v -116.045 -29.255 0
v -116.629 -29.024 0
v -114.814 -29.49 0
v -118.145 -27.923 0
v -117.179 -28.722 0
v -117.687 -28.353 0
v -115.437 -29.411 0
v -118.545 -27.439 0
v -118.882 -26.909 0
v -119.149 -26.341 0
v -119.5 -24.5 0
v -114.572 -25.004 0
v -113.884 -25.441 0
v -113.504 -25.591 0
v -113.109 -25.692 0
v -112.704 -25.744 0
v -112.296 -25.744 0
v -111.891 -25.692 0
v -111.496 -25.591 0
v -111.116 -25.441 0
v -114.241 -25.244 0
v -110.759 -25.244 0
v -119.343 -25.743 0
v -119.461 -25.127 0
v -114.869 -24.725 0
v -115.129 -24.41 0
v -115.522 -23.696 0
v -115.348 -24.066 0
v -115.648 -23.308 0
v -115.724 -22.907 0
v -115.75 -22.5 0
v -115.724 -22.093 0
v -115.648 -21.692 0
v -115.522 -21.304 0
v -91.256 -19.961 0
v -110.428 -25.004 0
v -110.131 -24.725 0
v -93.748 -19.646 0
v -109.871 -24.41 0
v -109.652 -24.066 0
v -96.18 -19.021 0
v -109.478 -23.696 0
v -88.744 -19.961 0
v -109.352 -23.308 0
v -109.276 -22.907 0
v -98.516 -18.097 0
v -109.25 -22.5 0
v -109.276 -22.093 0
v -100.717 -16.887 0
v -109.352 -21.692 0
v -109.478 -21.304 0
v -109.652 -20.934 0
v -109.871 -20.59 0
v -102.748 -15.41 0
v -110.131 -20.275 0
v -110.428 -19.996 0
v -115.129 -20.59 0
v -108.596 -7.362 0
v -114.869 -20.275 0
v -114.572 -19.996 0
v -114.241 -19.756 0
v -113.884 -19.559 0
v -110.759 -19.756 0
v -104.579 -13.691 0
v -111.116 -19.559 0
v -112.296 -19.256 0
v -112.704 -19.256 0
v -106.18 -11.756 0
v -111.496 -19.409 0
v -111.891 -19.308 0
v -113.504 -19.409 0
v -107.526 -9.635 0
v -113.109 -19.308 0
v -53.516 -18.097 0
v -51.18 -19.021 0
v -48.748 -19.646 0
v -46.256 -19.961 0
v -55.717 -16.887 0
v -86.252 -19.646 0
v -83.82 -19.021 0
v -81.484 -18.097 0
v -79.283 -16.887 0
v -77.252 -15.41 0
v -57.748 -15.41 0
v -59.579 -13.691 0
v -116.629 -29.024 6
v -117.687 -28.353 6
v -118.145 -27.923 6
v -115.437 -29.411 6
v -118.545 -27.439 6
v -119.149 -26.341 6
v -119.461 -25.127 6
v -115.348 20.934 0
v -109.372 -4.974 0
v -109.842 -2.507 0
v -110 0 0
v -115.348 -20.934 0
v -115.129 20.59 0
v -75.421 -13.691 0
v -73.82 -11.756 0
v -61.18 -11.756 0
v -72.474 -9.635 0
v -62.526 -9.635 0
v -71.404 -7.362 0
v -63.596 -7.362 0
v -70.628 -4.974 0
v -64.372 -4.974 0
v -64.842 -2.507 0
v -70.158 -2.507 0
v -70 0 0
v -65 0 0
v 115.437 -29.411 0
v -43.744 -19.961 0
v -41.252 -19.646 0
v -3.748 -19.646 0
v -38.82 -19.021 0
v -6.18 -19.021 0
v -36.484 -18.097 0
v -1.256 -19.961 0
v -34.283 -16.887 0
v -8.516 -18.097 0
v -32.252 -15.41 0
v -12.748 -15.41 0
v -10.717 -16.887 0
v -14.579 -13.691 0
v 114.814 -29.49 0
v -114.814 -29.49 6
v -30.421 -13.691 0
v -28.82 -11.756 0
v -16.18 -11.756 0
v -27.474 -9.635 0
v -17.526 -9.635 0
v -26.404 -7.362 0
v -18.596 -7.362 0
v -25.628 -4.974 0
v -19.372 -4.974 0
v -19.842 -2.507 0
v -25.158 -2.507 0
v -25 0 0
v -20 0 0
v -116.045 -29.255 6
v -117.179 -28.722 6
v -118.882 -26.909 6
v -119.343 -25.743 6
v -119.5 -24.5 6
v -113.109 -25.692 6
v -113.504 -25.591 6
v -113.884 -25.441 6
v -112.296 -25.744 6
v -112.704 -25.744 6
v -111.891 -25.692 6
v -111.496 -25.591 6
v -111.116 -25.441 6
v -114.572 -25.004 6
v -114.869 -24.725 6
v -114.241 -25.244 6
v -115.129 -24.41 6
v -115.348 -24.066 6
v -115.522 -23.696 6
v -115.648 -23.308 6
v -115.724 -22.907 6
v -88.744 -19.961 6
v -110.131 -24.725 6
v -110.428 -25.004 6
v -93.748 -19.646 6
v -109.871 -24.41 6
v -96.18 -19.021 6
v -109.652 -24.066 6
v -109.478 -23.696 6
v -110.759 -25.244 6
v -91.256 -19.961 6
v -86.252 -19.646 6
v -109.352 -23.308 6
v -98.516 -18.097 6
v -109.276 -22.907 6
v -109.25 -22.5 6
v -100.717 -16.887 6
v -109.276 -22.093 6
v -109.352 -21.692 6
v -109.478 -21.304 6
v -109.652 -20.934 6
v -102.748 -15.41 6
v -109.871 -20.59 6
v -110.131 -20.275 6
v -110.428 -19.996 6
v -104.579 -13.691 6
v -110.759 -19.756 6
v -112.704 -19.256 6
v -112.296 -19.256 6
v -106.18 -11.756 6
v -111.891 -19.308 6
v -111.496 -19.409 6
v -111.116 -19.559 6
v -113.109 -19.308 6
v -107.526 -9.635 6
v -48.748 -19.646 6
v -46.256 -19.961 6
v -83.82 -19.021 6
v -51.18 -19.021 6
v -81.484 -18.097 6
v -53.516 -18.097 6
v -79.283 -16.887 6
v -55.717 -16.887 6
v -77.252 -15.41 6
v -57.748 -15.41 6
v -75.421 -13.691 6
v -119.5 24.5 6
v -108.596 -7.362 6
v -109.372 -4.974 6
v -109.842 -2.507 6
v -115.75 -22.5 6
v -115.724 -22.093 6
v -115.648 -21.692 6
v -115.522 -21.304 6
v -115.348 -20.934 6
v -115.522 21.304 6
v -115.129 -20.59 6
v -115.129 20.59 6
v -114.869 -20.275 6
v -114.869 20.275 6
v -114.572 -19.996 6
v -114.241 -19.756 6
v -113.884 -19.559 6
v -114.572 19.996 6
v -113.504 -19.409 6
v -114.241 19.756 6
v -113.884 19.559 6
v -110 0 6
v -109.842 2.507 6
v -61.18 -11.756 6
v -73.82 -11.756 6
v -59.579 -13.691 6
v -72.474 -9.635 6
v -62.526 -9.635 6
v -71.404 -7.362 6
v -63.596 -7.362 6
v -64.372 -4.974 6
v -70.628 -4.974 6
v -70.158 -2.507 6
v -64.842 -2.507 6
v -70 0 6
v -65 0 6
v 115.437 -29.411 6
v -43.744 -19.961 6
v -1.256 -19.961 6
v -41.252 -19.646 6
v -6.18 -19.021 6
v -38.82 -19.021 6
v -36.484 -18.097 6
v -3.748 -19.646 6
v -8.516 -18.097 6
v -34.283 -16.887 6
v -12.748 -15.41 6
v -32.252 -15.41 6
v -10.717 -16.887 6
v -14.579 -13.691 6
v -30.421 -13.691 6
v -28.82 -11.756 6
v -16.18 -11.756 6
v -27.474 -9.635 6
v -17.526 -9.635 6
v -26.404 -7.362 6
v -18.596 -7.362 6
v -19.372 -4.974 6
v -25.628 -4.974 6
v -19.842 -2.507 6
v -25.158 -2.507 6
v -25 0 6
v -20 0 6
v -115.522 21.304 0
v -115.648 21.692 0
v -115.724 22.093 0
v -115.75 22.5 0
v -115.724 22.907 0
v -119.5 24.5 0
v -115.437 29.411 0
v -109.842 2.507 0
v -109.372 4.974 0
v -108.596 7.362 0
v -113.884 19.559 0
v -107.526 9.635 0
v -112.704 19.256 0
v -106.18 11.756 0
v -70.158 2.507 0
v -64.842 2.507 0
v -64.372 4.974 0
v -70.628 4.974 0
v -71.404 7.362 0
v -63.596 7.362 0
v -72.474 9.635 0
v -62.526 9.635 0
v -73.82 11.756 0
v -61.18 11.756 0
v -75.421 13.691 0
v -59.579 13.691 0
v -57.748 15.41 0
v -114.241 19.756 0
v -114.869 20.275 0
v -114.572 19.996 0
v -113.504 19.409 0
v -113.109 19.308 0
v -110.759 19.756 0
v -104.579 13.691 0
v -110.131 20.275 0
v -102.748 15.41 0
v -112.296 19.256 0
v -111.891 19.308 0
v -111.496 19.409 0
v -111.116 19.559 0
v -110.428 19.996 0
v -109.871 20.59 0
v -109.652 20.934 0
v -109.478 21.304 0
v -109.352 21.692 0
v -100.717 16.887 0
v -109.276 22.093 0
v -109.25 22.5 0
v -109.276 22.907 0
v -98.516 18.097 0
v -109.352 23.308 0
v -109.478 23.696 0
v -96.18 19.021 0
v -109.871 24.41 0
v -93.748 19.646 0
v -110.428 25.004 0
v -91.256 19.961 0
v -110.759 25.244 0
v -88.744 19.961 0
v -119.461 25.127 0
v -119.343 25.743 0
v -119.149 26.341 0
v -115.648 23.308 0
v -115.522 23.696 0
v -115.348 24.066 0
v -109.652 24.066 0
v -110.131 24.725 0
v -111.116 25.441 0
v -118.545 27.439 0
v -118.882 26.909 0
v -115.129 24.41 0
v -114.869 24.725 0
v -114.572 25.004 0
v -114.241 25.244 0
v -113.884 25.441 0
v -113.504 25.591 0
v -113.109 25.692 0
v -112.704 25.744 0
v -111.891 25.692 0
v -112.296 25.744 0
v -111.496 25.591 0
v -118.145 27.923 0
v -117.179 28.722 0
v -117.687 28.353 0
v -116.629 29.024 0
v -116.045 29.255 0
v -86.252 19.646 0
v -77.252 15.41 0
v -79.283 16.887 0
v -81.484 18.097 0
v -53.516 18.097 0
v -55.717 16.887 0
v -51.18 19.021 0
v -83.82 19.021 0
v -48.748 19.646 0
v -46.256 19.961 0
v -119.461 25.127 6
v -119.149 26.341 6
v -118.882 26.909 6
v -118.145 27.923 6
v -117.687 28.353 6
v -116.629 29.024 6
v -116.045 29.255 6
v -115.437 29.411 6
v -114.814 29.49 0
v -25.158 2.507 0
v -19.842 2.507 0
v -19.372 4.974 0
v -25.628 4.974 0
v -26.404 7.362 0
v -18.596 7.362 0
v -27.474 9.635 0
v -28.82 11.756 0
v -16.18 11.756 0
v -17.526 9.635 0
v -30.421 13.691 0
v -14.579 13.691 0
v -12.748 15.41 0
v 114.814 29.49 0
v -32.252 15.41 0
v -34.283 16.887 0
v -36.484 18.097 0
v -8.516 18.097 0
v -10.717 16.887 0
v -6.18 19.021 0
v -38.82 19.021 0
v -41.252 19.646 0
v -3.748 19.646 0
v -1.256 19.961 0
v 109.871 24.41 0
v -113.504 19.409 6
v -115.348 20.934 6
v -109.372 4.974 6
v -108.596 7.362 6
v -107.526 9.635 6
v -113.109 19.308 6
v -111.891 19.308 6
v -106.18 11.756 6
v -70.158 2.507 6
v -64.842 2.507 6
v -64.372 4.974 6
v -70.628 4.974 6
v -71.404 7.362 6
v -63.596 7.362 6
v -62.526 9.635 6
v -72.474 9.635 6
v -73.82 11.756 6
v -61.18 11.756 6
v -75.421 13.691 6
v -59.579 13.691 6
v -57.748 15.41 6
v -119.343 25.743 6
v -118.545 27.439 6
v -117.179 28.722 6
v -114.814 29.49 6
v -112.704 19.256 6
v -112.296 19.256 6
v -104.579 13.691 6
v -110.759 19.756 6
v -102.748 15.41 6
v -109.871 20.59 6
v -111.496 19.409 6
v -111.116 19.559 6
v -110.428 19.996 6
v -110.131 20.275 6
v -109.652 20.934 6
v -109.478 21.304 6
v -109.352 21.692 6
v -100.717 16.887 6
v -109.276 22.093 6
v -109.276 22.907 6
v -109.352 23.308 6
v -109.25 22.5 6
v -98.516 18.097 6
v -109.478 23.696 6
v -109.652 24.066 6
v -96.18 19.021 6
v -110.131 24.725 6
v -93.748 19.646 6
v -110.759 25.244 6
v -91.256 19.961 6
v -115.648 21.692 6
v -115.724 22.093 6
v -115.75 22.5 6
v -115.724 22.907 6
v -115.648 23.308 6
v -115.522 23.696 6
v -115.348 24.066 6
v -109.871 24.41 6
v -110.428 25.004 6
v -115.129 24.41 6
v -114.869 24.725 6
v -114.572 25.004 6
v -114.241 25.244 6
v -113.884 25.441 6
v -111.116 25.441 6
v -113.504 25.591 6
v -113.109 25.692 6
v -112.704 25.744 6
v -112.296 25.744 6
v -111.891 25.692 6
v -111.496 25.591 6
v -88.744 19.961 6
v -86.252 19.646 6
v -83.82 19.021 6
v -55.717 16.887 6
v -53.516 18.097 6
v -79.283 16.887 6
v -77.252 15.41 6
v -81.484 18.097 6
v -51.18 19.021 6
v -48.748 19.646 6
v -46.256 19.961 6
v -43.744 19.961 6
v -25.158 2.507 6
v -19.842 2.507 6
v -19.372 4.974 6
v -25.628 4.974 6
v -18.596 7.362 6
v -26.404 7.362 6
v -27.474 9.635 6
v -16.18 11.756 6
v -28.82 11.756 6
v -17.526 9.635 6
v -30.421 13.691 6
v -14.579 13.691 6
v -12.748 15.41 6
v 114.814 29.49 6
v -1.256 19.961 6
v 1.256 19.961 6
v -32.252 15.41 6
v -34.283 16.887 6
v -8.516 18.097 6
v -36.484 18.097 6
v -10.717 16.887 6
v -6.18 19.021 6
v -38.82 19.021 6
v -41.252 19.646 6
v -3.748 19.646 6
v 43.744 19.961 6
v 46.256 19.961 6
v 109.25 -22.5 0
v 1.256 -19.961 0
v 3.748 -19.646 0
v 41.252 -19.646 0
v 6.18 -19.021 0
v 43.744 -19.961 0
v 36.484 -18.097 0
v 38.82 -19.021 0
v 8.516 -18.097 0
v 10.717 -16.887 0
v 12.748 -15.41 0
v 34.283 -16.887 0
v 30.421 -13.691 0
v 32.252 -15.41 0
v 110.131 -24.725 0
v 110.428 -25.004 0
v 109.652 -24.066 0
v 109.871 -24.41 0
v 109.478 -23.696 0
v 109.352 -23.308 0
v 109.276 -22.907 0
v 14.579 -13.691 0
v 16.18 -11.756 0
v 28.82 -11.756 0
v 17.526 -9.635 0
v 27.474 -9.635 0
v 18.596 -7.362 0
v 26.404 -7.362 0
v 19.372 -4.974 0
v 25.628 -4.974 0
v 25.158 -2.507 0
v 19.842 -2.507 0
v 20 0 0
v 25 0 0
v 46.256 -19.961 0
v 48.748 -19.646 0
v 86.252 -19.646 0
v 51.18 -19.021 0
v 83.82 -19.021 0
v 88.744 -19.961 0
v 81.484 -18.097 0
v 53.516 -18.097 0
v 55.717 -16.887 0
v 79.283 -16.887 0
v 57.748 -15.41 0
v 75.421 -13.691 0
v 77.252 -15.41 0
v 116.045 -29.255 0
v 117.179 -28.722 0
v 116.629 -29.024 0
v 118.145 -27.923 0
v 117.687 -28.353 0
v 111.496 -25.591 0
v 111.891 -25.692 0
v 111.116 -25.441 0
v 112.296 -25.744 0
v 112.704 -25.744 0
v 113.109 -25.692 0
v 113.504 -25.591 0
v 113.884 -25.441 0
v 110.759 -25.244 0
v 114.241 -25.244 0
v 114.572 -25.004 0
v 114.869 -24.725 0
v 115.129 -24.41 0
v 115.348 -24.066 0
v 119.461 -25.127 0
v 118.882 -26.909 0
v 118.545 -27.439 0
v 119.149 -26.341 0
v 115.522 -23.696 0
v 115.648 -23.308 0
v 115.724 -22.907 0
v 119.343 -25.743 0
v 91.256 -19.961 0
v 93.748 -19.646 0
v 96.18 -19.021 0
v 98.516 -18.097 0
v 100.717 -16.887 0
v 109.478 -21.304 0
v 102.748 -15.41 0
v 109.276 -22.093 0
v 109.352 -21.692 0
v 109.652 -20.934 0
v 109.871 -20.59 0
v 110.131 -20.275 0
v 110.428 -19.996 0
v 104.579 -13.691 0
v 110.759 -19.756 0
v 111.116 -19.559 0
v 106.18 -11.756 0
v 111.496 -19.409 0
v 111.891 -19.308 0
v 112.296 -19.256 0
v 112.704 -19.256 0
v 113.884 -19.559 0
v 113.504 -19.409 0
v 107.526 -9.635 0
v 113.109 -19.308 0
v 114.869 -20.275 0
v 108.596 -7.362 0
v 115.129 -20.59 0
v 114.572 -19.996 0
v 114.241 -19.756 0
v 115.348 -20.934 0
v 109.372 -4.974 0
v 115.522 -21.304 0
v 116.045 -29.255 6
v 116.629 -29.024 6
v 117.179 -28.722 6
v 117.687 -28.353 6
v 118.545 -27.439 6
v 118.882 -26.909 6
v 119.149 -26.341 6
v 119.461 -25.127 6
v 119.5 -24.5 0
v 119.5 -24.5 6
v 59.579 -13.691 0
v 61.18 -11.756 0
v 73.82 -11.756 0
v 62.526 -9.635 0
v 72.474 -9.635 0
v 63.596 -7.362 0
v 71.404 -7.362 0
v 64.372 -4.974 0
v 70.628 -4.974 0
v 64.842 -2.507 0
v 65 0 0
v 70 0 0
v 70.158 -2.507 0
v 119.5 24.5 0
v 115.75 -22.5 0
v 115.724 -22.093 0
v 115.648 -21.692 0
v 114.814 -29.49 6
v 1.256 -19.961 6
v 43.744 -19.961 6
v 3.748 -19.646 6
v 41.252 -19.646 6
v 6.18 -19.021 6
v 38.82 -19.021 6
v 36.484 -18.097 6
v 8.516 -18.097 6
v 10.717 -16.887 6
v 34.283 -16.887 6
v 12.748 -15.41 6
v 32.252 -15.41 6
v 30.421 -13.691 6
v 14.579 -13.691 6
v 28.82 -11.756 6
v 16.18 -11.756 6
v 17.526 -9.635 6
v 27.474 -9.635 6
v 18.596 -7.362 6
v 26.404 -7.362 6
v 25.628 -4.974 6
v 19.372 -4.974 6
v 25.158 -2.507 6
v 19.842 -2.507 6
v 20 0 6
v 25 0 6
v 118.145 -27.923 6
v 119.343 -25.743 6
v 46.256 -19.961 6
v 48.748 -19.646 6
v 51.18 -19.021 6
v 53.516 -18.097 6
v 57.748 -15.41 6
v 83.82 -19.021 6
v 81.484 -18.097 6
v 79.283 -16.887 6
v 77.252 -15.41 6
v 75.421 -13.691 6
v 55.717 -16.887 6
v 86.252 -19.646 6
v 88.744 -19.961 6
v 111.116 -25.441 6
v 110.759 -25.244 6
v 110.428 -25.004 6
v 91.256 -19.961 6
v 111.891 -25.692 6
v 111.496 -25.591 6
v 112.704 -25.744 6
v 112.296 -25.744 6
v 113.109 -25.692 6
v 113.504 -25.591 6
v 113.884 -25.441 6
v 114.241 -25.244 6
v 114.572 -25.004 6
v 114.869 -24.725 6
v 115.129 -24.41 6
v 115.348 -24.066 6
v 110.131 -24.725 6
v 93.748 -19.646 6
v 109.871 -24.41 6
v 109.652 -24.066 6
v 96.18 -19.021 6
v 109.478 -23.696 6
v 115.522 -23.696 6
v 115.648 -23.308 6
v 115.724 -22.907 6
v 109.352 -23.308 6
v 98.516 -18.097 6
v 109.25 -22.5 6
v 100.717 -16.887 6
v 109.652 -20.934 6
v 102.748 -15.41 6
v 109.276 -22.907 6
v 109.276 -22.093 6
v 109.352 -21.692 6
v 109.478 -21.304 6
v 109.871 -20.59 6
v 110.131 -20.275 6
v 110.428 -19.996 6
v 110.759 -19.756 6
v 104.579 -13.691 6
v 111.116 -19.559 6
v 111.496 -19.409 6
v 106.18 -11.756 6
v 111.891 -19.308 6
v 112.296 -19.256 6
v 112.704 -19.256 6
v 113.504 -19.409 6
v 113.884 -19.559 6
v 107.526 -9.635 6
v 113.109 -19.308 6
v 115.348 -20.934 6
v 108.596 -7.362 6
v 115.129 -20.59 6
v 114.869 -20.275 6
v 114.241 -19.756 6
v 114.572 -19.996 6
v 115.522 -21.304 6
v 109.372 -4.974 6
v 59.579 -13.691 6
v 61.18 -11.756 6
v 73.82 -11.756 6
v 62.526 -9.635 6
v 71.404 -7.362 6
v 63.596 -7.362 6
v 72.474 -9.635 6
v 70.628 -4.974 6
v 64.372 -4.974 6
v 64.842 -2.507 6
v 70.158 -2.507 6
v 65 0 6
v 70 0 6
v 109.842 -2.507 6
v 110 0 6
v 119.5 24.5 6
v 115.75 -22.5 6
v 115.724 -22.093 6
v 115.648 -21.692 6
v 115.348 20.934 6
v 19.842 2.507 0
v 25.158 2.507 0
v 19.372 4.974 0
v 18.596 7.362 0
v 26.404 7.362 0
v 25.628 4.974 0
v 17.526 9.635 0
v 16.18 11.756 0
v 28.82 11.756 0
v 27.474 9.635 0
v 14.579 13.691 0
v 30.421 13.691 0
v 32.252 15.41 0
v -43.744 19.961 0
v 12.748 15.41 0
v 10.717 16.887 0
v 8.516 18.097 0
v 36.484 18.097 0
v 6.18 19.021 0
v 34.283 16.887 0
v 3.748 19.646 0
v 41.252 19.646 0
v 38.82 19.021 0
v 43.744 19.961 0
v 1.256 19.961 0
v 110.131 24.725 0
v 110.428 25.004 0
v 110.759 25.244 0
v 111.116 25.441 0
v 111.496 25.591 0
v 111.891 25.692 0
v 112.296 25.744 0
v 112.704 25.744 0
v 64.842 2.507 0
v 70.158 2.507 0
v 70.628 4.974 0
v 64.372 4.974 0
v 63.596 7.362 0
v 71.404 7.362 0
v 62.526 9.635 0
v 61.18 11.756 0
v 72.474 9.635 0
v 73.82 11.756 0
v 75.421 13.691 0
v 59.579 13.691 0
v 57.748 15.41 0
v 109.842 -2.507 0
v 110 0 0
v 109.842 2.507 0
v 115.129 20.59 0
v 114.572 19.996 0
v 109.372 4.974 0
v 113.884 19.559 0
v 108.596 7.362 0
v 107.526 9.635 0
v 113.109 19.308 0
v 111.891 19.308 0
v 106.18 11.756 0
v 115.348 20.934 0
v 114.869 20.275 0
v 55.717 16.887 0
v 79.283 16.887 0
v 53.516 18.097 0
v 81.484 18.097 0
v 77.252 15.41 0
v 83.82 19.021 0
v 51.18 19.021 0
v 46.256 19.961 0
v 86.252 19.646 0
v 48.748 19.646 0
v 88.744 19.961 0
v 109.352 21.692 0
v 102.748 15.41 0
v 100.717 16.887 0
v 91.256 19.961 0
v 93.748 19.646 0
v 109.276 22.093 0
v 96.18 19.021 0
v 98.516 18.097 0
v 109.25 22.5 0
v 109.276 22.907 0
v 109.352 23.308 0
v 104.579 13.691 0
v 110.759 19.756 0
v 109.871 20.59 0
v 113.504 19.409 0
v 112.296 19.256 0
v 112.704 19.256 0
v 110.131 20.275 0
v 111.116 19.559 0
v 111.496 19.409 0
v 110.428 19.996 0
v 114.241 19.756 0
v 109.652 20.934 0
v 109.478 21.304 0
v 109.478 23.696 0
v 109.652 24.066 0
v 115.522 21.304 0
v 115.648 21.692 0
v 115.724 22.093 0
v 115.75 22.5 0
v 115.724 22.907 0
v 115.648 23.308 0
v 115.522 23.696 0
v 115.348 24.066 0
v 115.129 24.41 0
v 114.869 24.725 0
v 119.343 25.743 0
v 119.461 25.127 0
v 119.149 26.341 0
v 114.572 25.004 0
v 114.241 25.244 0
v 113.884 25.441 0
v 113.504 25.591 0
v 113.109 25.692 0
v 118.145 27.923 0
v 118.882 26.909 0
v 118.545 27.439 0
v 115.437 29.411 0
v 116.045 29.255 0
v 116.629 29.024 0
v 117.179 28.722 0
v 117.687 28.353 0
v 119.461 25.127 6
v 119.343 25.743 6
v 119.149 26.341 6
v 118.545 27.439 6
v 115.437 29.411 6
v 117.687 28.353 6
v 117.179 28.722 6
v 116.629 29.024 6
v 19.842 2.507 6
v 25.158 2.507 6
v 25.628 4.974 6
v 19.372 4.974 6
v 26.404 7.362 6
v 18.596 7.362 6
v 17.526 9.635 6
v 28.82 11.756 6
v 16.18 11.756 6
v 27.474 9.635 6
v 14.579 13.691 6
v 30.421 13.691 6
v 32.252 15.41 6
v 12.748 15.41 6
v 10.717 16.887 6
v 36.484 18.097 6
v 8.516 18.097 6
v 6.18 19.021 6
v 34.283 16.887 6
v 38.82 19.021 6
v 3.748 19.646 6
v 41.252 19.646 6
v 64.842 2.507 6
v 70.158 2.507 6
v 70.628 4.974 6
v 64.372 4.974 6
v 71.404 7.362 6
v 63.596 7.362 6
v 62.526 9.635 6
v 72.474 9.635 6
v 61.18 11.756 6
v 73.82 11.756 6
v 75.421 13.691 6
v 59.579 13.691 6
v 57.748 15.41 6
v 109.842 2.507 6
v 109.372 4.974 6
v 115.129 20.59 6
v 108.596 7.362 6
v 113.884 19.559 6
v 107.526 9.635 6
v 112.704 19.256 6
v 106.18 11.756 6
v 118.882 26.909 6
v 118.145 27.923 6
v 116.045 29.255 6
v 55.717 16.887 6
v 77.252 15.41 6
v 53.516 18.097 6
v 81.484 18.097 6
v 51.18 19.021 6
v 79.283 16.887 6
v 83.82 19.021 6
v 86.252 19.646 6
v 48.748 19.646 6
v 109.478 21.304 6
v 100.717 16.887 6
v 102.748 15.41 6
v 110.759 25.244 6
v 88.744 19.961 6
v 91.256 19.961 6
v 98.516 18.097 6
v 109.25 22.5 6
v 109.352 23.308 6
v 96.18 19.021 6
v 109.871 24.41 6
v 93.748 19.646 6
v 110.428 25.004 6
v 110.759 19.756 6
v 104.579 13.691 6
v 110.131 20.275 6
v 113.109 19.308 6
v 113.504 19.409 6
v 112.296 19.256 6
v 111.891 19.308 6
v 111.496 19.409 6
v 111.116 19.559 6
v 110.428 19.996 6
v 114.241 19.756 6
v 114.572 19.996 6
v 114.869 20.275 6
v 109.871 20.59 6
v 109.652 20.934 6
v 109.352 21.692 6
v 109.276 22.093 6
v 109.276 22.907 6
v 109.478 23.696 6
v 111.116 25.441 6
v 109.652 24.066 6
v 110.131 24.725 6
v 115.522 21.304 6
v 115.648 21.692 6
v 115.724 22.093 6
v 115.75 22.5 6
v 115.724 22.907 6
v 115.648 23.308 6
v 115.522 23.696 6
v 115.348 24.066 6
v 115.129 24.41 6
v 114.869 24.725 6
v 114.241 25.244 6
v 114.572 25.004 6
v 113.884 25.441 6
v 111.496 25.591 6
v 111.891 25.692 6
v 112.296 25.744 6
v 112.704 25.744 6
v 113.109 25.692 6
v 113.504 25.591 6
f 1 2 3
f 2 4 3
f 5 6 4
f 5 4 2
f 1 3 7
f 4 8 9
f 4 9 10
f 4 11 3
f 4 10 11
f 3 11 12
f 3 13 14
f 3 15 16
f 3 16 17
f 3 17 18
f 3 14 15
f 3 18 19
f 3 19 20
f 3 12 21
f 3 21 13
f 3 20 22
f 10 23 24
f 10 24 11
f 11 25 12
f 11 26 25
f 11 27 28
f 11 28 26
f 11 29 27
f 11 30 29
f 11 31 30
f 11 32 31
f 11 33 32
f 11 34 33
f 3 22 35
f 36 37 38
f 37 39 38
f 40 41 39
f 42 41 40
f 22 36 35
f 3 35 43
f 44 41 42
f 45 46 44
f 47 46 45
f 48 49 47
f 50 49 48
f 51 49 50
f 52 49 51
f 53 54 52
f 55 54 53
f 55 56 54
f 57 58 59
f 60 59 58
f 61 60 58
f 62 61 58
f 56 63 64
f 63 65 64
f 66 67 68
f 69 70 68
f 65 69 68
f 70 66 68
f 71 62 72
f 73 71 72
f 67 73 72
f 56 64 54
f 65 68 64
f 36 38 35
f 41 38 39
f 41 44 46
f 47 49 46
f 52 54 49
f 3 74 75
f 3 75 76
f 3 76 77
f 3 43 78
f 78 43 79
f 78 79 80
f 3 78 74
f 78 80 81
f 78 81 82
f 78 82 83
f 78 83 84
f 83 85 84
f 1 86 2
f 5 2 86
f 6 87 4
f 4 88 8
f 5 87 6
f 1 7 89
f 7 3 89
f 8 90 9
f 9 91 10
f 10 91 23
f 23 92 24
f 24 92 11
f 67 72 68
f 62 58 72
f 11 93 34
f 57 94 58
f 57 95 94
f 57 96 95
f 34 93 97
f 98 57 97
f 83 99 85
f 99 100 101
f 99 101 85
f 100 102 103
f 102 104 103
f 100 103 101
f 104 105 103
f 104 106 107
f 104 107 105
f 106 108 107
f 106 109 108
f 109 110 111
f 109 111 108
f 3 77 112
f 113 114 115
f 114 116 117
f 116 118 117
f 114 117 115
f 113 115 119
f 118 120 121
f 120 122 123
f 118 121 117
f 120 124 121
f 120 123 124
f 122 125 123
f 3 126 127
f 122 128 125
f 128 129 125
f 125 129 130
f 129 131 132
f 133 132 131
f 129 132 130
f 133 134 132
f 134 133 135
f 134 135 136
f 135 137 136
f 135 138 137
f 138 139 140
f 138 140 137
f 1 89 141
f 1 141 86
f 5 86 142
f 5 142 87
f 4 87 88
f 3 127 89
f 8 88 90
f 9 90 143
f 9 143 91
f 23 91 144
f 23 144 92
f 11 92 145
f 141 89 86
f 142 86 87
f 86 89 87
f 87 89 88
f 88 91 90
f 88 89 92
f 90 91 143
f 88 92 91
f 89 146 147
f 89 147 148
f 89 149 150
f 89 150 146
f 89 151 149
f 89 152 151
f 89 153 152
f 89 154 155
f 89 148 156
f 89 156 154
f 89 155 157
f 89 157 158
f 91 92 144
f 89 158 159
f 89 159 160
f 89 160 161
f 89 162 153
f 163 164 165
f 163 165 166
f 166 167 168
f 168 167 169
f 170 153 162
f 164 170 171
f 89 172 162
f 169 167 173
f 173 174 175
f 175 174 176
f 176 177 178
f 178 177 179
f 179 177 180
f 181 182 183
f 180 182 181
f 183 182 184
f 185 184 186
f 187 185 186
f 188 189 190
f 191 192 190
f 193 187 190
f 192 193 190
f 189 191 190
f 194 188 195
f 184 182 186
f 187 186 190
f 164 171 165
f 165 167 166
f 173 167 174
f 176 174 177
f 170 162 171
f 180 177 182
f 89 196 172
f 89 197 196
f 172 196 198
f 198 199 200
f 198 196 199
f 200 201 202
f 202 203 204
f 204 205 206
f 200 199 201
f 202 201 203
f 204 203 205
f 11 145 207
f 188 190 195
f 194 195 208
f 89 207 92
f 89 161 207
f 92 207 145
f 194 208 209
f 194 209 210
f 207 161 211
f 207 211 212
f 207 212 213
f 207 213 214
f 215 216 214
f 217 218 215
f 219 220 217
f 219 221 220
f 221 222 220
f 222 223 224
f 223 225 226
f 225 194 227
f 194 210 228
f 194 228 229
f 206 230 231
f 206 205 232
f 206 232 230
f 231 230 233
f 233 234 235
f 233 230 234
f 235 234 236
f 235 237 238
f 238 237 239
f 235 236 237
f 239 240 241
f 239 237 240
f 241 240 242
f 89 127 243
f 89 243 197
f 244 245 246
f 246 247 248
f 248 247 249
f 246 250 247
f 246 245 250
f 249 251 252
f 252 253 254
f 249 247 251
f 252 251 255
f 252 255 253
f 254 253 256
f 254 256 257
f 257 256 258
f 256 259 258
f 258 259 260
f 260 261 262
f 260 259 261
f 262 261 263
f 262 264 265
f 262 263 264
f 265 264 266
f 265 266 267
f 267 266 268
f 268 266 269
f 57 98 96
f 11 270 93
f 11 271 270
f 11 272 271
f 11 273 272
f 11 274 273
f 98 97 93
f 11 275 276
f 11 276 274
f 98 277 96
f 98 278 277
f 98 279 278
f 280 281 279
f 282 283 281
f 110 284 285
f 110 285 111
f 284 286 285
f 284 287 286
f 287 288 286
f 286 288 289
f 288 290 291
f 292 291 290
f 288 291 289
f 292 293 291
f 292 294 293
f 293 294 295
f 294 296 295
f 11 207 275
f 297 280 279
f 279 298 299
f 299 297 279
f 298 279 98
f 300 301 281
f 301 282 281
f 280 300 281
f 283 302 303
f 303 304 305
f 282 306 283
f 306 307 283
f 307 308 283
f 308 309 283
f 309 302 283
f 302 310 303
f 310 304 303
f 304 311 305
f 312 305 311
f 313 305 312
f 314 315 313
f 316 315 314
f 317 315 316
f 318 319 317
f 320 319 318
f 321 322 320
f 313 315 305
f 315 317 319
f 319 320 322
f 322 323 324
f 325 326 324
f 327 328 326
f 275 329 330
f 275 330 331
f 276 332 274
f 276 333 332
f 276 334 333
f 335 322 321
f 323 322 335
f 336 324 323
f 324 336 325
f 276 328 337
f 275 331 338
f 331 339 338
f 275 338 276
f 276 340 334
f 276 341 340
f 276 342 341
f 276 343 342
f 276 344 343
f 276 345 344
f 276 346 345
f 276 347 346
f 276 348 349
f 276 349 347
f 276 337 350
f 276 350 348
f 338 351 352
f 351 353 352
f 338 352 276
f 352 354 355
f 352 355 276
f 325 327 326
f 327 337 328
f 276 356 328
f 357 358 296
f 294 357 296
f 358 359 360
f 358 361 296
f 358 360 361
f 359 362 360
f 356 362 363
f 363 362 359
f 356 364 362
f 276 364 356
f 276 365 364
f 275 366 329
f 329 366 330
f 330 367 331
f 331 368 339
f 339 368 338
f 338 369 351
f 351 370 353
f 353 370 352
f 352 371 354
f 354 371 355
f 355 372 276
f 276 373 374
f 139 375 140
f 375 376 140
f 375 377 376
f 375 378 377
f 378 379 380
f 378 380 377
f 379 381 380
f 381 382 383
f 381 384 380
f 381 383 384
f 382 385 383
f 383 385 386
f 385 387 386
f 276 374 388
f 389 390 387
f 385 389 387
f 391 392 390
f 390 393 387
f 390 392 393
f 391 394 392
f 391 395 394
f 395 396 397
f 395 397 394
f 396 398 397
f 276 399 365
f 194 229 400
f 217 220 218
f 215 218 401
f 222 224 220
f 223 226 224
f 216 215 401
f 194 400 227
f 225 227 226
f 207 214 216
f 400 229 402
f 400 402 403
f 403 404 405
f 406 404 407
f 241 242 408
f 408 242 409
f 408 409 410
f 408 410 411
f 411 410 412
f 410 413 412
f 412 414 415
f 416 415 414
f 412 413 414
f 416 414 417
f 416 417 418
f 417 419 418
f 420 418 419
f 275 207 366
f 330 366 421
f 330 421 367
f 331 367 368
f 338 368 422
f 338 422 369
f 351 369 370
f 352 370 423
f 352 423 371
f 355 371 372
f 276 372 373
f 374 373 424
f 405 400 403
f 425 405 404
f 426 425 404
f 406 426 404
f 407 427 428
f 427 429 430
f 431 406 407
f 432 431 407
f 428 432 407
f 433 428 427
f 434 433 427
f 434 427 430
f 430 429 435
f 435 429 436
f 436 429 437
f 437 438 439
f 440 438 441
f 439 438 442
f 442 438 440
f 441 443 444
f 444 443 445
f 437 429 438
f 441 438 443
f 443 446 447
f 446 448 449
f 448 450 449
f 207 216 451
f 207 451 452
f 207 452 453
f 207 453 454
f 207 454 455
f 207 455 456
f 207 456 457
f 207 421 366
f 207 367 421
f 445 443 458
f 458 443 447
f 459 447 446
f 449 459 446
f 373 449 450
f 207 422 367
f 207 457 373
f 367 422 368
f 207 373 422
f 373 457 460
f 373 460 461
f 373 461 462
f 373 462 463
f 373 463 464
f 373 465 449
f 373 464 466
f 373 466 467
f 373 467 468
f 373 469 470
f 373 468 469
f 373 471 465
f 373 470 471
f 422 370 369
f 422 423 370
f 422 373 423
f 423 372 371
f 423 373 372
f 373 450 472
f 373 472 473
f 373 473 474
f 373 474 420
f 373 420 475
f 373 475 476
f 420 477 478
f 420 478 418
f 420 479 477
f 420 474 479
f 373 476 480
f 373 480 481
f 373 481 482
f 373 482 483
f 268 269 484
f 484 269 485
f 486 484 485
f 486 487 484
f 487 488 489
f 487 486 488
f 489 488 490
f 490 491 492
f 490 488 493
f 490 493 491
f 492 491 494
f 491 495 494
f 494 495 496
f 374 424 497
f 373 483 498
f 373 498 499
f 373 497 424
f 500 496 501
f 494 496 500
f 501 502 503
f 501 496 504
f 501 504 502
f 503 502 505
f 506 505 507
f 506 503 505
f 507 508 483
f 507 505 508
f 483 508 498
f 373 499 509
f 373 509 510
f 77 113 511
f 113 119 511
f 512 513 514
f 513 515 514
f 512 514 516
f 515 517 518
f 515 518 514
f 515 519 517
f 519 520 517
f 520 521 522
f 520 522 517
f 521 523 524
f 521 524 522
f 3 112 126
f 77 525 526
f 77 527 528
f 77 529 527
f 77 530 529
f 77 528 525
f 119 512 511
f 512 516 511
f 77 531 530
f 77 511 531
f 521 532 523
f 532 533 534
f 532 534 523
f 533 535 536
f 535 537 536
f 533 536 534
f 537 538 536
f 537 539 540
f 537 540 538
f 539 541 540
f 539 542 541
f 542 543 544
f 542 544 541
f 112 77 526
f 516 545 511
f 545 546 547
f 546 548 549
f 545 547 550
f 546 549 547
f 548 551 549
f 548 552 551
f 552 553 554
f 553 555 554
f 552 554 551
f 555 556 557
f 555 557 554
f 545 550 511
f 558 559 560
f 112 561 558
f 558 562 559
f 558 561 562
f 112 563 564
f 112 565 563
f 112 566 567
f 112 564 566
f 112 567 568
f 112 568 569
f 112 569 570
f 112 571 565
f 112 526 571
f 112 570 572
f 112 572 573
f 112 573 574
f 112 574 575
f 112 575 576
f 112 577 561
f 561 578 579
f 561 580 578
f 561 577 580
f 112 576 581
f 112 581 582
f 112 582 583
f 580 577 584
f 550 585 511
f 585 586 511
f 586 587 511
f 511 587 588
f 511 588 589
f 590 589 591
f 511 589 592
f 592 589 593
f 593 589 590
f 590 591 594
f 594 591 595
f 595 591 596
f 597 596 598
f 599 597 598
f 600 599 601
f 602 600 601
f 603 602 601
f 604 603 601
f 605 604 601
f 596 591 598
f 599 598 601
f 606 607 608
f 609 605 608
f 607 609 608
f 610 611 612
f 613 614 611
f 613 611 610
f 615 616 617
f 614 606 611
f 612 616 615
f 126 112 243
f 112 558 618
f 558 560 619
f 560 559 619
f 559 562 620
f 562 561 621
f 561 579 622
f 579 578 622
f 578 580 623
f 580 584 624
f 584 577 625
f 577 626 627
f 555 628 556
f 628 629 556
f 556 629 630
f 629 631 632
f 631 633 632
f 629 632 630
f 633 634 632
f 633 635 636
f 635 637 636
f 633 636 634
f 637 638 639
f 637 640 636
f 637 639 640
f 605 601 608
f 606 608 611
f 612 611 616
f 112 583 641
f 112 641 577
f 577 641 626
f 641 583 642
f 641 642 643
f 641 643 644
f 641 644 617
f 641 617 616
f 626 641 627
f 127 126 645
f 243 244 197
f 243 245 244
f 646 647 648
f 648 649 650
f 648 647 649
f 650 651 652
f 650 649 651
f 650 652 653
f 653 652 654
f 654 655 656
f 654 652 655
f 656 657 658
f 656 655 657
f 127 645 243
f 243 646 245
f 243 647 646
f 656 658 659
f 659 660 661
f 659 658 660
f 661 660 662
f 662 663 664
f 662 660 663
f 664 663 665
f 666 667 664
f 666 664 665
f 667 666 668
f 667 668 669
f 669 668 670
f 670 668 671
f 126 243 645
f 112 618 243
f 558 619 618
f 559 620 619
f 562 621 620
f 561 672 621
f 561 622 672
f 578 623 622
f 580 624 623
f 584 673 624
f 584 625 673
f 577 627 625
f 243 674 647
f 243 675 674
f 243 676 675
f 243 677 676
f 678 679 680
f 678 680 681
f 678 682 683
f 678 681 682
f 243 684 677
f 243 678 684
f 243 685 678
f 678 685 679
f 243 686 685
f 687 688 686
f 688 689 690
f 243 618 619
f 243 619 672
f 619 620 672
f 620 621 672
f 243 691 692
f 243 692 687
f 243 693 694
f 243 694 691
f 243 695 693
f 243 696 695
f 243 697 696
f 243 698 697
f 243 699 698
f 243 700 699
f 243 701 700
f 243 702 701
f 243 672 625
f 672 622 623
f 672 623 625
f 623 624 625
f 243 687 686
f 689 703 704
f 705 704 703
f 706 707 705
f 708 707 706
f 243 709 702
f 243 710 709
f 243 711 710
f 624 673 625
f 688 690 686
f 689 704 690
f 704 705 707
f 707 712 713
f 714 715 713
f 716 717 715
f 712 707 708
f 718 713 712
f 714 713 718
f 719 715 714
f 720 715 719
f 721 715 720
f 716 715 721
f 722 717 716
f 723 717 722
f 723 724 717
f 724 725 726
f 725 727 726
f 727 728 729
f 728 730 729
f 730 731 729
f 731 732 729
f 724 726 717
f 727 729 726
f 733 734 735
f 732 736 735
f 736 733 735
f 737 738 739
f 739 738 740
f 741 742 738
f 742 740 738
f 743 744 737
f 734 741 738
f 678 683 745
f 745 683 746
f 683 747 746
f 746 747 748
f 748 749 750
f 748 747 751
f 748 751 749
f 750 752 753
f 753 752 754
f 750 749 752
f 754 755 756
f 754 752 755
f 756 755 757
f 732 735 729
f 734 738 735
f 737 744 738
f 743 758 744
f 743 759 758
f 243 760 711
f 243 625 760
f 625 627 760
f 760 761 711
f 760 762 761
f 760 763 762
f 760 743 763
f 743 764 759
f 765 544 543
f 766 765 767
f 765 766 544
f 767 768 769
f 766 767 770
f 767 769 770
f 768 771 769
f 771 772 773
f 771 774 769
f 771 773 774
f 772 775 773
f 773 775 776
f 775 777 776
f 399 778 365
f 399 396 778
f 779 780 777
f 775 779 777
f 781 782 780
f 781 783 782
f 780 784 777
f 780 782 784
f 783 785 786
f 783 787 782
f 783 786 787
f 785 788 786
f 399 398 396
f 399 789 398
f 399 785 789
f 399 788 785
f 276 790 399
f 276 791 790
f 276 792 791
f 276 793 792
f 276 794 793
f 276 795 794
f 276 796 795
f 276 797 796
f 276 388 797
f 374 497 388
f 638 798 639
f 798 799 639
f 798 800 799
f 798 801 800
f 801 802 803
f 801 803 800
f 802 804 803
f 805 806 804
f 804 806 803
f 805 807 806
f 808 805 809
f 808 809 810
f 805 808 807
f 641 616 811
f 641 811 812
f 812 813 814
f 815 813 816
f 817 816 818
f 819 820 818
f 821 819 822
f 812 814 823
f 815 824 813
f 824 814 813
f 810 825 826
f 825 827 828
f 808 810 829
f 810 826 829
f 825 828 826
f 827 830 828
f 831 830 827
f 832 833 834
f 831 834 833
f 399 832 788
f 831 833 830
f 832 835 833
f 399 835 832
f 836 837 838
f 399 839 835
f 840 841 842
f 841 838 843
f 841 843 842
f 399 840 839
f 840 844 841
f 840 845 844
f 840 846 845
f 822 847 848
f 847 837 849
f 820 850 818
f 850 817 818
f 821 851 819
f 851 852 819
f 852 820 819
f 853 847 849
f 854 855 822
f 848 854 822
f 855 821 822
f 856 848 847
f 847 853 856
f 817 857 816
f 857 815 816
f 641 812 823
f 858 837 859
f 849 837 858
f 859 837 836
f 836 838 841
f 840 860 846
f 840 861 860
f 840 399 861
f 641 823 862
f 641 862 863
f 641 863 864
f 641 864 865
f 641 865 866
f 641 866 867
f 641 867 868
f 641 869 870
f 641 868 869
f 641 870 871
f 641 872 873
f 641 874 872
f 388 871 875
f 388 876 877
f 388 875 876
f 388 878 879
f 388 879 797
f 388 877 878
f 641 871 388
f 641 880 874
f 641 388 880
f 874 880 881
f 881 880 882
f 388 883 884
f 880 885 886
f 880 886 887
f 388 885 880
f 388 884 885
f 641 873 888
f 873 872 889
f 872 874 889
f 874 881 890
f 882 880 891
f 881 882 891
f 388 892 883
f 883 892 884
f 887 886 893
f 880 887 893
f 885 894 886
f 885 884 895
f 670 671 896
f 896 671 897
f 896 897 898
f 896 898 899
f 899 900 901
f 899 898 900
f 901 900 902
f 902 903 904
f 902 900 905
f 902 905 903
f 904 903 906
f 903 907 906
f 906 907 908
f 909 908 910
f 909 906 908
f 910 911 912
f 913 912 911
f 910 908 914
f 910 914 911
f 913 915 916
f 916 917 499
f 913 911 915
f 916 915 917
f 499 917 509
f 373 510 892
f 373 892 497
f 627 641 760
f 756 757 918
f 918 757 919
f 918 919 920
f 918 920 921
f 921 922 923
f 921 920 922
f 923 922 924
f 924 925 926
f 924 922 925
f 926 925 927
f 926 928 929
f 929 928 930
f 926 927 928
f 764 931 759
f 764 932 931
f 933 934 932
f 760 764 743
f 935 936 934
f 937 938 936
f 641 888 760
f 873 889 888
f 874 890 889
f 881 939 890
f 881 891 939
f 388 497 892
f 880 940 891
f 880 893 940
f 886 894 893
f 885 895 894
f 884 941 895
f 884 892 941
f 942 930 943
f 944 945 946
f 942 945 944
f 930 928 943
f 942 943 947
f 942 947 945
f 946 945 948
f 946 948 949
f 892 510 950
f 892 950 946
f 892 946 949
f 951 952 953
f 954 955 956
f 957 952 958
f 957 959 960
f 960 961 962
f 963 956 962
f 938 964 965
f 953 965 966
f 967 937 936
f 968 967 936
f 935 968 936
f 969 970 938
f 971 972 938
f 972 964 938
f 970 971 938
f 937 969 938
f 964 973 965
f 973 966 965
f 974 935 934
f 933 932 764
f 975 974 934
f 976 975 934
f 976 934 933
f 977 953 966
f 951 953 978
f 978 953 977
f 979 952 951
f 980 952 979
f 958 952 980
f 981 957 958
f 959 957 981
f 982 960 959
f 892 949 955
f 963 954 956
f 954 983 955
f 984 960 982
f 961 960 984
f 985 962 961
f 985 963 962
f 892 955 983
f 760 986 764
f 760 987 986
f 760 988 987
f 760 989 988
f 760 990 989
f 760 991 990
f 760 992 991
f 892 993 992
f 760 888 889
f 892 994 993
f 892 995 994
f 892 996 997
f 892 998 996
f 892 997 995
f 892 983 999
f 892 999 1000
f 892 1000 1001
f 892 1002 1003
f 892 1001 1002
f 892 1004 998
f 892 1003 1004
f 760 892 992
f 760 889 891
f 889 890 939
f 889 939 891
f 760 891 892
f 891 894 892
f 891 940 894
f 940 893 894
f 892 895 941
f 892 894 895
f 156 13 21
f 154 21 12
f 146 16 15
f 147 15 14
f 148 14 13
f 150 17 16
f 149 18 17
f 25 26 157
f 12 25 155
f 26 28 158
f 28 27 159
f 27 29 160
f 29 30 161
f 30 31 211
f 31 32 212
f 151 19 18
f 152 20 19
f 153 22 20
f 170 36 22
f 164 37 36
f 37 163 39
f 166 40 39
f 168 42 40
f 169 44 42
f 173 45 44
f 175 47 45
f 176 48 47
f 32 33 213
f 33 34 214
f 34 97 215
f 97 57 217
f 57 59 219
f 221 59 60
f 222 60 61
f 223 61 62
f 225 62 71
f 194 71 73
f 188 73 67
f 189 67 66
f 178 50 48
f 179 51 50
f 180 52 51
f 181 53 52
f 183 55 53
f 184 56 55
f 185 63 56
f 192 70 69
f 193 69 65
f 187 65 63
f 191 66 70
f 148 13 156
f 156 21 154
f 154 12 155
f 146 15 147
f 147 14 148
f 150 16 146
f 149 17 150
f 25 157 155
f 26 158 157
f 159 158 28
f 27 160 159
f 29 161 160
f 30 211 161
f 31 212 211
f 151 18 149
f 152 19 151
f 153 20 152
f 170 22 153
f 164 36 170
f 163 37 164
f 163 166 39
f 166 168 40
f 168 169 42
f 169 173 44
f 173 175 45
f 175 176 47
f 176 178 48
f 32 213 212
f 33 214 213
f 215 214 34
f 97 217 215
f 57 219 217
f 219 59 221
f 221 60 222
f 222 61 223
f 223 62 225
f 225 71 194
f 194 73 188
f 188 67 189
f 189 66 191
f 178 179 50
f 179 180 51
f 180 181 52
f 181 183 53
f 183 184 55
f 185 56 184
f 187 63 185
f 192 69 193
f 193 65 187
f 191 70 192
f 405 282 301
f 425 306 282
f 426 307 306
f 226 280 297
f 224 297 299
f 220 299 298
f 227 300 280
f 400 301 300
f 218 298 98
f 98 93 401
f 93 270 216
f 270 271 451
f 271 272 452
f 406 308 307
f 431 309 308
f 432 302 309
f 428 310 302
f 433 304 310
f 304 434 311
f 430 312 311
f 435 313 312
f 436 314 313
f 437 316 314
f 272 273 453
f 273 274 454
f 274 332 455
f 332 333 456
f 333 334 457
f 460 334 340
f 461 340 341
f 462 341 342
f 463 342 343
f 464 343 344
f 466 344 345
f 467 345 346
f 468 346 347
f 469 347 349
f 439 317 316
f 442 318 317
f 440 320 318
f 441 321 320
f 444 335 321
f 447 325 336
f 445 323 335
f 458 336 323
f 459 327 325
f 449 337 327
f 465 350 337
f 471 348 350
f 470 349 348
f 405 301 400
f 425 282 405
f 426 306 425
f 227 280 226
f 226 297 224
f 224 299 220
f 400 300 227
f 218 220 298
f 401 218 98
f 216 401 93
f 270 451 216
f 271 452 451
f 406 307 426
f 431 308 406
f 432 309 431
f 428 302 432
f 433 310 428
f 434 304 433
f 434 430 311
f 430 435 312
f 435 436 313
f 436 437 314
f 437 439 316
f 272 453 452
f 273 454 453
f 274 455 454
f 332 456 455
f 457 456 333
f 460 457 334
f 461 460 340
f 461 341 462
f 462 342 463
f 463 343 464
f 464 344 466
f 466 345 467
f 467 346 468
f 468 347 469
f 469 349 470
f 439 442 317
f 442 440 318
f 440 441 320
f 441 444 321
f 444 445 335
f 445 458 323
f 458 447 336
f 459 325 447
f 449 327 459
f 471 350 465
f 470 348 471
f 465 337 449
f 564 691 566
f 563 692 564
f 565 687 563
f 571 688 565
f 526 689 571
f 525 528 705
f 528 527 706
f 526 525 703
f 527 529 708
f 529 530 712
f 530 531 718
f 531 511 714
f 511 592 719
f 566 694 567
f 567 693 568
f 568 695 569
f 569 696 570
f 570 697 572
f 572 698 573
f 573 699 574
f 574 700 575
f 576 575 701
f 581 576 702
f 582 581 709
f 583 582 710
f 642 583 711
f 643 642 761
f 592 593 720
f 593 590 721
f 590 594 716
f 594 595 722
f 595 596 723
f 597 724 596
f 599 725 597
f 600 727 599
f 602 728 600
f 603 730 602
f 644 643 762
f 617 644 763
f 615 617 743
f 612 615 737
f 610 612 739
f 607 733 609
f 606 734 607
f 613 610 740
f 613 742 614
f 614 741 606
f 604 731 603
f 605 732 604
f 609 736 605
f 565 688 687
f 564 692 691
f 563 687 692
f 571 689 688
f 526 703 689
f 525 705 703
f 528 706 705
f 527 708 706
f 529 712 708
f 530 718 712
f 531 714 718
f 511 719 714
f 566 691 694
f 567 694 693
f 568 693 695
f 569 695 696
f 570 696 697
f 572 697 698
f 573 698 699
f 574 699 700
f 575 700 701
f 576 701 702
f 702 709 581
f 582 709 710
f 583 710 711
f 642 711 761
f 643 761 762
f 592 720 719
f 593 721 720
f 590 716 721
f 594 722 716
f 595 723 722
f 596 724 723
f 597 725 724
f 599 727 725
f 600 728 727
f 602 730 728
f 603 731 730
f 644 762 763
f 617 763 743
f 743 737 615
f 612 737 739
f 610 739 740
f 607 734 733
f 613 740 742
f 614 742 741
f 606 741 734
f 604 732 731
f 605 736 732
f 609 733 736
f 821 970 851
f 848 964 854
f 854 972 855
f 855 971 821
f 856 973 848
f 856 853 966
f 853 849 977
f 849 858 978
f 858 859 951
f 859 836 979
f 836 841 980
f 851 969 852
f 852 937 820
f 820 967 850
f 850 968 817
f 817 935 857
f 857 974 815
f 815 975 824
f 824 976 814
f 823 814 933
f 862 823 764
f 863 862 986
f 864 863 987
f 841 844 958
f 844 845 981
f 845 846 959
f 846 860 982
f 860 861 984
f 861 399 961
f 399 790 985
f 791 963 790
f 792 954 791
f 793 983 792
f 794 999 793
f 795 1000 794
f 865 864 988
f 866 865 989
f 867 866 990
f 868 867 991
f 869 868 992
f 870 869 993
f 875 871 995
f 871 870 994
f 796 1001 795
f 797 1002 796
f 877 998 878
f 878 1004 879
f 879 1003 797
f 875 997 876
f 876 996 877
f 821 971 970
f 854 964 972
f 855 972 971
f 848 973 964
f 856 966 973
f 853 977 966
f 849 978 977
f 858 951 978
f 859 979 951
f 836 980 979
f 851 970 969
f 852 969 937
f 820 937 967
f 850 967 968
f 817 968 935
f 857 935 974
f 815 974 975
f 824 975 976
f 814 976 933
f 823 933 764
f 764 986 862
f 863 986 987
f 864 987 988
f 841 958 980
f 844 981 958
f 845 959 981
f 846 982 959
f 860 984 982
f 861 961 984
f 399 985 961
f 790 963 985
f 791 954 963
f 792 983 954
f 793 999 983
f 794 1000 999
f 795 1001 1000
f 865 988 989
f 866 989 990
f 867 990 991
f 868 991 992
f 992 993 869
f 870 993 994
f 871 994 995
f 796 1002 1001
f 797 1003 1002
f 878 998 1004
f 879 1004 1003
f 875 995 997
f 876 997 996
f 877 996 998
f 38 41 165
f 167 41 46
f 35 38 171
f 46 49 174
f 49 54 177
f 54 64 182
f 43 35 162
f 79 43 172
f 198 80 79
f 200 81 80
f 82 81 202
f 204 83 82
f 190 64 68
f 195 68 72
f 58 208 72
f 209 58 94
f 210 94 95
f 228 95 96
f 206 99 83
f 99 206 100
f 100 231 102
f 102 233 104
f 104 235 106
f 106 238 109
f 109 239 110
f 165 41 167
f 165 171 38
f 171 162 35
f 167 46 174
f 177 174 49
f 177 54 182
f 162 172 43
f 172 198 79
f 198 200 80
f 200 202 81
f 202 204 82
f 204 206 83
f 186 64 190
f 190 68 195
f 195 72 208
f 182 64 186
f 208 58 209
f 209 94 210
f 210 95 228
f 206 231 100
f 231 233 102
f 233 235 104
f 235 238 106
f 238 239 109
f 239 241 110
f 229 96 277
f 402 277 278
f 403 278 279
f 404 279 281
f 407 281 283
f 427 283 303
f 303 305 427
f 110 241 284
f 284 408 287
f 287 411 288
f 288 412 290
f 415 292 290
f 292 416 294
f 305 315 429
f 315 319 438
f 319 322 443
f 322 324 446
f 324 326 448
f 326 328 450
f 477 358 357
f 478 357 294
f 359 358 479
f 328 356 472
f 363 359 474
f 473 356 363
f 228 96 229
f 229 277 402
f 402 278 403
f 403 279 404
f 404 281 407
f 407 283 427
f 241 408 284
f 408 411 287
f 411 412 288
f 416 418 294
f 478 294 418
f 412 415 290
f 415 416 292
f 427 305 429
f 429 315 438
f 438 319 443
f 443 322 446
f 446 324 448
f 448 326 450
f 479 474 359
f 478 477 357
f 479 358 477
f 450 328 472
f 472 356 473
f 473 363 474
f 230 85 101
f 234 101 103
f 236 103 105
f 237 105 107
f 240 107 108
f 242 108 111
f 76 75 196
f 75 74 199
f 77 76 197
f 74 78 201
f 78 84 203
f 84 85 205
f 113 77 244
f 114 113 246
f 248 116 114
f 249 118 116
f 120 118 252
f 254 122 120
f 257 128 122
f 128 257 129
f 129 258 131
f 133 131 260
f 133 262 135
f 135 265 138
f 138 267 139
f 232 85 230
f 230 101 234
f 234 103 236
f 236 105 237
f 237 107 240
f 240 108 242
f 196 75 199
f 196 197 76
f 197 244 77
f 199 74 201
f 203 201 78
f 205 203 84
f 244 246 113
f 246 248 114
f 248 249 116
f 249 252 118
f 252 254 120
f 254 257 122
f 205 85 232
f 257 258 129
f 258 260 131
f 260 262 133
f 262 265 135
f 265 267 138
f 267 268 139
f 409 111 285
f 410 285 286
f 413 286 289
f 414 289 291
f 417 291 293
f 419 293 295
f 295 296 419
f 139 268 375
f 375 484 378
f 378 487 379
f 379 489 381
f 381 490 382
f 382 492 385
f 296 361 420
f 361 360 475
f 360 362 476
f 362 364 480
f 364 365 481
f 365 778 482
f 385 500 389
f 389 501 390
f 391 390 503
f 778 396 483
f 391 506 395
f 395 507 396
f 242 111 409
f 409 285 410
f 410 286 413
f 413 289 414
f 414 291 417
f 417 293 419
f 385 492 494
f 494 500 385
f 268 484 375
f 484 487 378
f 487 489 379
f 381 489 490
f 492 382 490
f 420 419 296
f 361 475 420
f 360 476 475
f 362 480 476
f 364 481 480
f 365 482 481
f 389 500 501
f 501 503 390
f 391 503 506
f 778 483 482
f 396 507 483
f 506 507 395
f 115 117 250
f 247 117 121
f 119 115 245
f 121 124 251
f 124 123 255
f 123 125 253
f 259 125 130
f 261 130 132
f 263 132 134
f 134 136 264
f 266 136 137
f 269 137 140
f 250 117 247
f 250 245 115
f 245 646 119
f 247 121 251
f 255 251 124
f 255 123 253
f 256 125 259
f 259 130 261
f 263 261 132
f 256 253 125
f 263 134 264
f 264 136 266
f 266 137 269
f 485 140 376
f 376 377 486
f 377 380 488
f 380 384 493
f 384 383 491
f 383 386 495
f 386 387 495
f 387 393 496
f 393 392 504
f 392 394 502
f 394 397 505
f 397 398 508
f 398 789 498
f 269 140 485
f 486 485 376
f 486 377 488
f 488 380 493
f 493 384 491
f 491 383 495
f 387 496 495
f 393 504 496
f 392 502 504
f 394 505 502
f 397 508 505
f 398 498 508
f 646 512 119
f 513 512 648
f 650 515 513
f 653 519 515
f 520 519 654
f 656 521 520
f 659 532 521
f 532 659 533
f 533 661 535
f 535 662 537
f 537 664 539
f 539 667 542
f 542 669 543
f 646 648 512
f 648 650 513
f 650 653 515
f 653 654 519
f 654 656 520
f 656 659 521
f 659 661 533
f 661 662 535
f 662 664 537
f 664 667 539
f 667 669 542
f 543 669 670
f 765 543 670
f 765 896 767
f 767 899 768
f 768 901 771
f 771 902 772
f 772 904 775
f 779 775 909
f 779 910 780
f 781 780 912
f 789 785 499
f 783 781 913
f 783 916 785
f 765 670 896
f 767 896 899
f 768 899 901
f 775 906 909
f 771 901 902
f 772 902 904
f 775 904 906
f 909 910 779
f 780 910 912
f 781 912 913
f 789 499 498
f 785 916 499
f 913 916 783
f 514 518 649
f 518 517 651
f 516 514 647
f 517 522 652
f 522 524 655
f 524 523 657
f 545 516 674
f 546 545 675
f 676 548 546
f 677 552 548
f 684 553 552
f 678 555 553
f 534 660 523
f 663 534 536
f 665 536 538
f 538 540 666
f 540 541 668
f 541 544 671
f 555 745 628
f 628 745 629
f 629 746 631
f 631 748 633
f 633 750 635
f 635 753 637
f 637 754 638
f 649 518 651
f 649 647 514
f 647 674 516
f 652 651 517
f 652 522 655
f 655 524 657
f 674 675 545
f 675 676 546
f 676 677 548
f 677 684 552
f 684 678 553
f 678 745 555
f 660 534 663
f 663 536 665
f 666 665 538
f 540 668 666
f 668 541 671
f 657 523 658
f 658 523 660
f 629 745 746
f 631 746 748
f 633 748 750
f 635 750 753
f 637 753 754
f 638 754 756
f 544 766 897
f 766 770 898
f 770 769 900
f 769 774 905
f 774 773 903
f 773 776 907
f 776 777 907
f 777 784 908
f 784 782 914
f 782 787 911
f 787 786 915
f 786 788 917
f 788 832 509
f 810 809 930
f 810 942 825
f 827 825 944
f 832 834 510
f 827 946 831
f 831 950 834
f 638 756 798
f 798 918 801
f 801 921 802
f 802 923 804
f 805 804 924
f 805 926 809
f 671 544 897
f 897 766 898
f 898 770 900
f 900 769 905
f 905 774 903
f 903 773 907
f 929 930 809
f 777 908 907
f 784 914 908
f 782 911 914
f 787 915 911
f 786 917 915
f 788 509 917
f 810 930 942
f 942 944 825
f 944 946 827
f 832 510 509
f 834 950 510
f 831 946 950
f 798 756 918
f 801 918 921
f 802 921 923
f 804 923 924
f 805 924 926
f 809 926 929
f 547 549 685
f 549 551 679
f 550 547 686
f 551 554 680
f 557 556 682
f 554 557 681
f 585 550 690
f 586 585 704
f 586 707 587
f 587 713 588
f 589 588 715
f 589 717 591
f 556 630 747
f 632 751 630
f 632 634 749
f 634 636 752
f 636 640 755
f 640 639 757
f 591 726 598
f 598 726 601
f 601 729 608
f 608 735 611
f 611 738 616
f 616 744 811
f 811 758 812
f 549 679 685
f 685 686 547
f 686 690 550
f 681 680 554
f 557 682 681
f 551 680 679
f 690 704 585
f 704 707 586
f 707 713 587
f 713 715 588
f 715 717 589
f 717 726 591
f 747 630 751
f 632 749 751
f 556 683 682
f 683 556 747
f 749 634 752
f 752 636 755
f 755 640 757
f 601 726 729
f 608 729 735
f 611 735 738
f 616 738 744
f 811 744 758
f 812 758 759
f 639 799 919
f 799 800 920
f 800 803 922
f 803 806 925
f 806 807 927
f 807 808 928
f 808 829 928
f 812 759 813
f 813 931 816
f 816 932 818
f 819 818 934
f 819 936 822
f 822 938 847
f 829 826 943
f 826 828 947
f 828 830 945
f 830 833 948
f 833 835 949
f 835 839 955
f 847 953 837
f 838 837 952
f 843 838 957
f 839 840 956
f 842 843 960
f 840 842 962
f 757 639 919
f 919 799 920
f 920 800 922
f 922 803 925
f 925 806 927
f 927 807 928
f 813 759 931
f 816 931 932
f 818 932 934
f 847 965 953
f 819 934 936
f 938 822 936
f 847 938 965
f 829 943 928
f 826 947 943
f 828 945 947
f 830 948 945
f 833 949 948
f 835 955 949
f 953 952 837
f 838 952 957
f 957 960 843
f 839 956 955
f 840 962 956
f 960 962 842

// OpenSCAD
$fn = 50;

difference() {
	union() {
		hull() {
			translate(v = [-114.5, 24.5, 0]) {
				cylinder(h = 6, r = 5);
			}
			translate(v = [114.5, 24.5, 0]) {
				cylinder(h = 6, r = 5);
			}
			translate(v = [-114.5, -24.5, 0]) {
				cylinder(h = 6, r = 5);
			}
			translate(v = [114.5, -24.5, 0]) {
				cylinder(h = 6, r = 5);
			}
		}
	}
	union() {
		translate(v = [-112.5, -22.5, -100.0]) {
			cylinder(h = 200, r = 3.25);
		}
		translate(v = [-112.5, 22.5, -100.0]) {
			cylinder(h = 200, r = 3.25);
		}
		translate(v = [112.5, -22.5, -100.0]) {
			cylinder(h = 200, r = 3.25);
		}
		translate(v = [112.5, 22.5, -100.0]) {
			cylinder(h = 200, r = 3.25);
		}
		translate(v = [-112.5, -22.5, -100.0]) {
			cylinder(h = 200, r = 1.8);
		}
		translate(v = [-112.5, 22.5, -100.0]) {
			cylinder(h = 200, r = 1.8);
		}
		translate(v = [112.5, -22.5, -100.0]) {
			cylinder(h = 200, r = 1.8);
		}
		translate(v = [112.5, 22.5, -100.0]) {
			cylinder(h = 200, r = 1.8);
		}
		translate(v = [-90.0, 0, 0.0]) {
			cylinder(h = 6, r = 20.0);
		}
		translate(v = [-45.0, 0, 0.0]) {
			cylinder(h = 6, r = 20.0);
		}
		cylinder(h = 6, r = 20.0);
		translate(v = [45.0, 0, 0.0]) {
			cylinder(h = 6, r = 20.0);
		}
		translate(v = [90.0, 0, 0.0]) {
			cylinder(h = 6, r = 20.0);
		}
	}
}
